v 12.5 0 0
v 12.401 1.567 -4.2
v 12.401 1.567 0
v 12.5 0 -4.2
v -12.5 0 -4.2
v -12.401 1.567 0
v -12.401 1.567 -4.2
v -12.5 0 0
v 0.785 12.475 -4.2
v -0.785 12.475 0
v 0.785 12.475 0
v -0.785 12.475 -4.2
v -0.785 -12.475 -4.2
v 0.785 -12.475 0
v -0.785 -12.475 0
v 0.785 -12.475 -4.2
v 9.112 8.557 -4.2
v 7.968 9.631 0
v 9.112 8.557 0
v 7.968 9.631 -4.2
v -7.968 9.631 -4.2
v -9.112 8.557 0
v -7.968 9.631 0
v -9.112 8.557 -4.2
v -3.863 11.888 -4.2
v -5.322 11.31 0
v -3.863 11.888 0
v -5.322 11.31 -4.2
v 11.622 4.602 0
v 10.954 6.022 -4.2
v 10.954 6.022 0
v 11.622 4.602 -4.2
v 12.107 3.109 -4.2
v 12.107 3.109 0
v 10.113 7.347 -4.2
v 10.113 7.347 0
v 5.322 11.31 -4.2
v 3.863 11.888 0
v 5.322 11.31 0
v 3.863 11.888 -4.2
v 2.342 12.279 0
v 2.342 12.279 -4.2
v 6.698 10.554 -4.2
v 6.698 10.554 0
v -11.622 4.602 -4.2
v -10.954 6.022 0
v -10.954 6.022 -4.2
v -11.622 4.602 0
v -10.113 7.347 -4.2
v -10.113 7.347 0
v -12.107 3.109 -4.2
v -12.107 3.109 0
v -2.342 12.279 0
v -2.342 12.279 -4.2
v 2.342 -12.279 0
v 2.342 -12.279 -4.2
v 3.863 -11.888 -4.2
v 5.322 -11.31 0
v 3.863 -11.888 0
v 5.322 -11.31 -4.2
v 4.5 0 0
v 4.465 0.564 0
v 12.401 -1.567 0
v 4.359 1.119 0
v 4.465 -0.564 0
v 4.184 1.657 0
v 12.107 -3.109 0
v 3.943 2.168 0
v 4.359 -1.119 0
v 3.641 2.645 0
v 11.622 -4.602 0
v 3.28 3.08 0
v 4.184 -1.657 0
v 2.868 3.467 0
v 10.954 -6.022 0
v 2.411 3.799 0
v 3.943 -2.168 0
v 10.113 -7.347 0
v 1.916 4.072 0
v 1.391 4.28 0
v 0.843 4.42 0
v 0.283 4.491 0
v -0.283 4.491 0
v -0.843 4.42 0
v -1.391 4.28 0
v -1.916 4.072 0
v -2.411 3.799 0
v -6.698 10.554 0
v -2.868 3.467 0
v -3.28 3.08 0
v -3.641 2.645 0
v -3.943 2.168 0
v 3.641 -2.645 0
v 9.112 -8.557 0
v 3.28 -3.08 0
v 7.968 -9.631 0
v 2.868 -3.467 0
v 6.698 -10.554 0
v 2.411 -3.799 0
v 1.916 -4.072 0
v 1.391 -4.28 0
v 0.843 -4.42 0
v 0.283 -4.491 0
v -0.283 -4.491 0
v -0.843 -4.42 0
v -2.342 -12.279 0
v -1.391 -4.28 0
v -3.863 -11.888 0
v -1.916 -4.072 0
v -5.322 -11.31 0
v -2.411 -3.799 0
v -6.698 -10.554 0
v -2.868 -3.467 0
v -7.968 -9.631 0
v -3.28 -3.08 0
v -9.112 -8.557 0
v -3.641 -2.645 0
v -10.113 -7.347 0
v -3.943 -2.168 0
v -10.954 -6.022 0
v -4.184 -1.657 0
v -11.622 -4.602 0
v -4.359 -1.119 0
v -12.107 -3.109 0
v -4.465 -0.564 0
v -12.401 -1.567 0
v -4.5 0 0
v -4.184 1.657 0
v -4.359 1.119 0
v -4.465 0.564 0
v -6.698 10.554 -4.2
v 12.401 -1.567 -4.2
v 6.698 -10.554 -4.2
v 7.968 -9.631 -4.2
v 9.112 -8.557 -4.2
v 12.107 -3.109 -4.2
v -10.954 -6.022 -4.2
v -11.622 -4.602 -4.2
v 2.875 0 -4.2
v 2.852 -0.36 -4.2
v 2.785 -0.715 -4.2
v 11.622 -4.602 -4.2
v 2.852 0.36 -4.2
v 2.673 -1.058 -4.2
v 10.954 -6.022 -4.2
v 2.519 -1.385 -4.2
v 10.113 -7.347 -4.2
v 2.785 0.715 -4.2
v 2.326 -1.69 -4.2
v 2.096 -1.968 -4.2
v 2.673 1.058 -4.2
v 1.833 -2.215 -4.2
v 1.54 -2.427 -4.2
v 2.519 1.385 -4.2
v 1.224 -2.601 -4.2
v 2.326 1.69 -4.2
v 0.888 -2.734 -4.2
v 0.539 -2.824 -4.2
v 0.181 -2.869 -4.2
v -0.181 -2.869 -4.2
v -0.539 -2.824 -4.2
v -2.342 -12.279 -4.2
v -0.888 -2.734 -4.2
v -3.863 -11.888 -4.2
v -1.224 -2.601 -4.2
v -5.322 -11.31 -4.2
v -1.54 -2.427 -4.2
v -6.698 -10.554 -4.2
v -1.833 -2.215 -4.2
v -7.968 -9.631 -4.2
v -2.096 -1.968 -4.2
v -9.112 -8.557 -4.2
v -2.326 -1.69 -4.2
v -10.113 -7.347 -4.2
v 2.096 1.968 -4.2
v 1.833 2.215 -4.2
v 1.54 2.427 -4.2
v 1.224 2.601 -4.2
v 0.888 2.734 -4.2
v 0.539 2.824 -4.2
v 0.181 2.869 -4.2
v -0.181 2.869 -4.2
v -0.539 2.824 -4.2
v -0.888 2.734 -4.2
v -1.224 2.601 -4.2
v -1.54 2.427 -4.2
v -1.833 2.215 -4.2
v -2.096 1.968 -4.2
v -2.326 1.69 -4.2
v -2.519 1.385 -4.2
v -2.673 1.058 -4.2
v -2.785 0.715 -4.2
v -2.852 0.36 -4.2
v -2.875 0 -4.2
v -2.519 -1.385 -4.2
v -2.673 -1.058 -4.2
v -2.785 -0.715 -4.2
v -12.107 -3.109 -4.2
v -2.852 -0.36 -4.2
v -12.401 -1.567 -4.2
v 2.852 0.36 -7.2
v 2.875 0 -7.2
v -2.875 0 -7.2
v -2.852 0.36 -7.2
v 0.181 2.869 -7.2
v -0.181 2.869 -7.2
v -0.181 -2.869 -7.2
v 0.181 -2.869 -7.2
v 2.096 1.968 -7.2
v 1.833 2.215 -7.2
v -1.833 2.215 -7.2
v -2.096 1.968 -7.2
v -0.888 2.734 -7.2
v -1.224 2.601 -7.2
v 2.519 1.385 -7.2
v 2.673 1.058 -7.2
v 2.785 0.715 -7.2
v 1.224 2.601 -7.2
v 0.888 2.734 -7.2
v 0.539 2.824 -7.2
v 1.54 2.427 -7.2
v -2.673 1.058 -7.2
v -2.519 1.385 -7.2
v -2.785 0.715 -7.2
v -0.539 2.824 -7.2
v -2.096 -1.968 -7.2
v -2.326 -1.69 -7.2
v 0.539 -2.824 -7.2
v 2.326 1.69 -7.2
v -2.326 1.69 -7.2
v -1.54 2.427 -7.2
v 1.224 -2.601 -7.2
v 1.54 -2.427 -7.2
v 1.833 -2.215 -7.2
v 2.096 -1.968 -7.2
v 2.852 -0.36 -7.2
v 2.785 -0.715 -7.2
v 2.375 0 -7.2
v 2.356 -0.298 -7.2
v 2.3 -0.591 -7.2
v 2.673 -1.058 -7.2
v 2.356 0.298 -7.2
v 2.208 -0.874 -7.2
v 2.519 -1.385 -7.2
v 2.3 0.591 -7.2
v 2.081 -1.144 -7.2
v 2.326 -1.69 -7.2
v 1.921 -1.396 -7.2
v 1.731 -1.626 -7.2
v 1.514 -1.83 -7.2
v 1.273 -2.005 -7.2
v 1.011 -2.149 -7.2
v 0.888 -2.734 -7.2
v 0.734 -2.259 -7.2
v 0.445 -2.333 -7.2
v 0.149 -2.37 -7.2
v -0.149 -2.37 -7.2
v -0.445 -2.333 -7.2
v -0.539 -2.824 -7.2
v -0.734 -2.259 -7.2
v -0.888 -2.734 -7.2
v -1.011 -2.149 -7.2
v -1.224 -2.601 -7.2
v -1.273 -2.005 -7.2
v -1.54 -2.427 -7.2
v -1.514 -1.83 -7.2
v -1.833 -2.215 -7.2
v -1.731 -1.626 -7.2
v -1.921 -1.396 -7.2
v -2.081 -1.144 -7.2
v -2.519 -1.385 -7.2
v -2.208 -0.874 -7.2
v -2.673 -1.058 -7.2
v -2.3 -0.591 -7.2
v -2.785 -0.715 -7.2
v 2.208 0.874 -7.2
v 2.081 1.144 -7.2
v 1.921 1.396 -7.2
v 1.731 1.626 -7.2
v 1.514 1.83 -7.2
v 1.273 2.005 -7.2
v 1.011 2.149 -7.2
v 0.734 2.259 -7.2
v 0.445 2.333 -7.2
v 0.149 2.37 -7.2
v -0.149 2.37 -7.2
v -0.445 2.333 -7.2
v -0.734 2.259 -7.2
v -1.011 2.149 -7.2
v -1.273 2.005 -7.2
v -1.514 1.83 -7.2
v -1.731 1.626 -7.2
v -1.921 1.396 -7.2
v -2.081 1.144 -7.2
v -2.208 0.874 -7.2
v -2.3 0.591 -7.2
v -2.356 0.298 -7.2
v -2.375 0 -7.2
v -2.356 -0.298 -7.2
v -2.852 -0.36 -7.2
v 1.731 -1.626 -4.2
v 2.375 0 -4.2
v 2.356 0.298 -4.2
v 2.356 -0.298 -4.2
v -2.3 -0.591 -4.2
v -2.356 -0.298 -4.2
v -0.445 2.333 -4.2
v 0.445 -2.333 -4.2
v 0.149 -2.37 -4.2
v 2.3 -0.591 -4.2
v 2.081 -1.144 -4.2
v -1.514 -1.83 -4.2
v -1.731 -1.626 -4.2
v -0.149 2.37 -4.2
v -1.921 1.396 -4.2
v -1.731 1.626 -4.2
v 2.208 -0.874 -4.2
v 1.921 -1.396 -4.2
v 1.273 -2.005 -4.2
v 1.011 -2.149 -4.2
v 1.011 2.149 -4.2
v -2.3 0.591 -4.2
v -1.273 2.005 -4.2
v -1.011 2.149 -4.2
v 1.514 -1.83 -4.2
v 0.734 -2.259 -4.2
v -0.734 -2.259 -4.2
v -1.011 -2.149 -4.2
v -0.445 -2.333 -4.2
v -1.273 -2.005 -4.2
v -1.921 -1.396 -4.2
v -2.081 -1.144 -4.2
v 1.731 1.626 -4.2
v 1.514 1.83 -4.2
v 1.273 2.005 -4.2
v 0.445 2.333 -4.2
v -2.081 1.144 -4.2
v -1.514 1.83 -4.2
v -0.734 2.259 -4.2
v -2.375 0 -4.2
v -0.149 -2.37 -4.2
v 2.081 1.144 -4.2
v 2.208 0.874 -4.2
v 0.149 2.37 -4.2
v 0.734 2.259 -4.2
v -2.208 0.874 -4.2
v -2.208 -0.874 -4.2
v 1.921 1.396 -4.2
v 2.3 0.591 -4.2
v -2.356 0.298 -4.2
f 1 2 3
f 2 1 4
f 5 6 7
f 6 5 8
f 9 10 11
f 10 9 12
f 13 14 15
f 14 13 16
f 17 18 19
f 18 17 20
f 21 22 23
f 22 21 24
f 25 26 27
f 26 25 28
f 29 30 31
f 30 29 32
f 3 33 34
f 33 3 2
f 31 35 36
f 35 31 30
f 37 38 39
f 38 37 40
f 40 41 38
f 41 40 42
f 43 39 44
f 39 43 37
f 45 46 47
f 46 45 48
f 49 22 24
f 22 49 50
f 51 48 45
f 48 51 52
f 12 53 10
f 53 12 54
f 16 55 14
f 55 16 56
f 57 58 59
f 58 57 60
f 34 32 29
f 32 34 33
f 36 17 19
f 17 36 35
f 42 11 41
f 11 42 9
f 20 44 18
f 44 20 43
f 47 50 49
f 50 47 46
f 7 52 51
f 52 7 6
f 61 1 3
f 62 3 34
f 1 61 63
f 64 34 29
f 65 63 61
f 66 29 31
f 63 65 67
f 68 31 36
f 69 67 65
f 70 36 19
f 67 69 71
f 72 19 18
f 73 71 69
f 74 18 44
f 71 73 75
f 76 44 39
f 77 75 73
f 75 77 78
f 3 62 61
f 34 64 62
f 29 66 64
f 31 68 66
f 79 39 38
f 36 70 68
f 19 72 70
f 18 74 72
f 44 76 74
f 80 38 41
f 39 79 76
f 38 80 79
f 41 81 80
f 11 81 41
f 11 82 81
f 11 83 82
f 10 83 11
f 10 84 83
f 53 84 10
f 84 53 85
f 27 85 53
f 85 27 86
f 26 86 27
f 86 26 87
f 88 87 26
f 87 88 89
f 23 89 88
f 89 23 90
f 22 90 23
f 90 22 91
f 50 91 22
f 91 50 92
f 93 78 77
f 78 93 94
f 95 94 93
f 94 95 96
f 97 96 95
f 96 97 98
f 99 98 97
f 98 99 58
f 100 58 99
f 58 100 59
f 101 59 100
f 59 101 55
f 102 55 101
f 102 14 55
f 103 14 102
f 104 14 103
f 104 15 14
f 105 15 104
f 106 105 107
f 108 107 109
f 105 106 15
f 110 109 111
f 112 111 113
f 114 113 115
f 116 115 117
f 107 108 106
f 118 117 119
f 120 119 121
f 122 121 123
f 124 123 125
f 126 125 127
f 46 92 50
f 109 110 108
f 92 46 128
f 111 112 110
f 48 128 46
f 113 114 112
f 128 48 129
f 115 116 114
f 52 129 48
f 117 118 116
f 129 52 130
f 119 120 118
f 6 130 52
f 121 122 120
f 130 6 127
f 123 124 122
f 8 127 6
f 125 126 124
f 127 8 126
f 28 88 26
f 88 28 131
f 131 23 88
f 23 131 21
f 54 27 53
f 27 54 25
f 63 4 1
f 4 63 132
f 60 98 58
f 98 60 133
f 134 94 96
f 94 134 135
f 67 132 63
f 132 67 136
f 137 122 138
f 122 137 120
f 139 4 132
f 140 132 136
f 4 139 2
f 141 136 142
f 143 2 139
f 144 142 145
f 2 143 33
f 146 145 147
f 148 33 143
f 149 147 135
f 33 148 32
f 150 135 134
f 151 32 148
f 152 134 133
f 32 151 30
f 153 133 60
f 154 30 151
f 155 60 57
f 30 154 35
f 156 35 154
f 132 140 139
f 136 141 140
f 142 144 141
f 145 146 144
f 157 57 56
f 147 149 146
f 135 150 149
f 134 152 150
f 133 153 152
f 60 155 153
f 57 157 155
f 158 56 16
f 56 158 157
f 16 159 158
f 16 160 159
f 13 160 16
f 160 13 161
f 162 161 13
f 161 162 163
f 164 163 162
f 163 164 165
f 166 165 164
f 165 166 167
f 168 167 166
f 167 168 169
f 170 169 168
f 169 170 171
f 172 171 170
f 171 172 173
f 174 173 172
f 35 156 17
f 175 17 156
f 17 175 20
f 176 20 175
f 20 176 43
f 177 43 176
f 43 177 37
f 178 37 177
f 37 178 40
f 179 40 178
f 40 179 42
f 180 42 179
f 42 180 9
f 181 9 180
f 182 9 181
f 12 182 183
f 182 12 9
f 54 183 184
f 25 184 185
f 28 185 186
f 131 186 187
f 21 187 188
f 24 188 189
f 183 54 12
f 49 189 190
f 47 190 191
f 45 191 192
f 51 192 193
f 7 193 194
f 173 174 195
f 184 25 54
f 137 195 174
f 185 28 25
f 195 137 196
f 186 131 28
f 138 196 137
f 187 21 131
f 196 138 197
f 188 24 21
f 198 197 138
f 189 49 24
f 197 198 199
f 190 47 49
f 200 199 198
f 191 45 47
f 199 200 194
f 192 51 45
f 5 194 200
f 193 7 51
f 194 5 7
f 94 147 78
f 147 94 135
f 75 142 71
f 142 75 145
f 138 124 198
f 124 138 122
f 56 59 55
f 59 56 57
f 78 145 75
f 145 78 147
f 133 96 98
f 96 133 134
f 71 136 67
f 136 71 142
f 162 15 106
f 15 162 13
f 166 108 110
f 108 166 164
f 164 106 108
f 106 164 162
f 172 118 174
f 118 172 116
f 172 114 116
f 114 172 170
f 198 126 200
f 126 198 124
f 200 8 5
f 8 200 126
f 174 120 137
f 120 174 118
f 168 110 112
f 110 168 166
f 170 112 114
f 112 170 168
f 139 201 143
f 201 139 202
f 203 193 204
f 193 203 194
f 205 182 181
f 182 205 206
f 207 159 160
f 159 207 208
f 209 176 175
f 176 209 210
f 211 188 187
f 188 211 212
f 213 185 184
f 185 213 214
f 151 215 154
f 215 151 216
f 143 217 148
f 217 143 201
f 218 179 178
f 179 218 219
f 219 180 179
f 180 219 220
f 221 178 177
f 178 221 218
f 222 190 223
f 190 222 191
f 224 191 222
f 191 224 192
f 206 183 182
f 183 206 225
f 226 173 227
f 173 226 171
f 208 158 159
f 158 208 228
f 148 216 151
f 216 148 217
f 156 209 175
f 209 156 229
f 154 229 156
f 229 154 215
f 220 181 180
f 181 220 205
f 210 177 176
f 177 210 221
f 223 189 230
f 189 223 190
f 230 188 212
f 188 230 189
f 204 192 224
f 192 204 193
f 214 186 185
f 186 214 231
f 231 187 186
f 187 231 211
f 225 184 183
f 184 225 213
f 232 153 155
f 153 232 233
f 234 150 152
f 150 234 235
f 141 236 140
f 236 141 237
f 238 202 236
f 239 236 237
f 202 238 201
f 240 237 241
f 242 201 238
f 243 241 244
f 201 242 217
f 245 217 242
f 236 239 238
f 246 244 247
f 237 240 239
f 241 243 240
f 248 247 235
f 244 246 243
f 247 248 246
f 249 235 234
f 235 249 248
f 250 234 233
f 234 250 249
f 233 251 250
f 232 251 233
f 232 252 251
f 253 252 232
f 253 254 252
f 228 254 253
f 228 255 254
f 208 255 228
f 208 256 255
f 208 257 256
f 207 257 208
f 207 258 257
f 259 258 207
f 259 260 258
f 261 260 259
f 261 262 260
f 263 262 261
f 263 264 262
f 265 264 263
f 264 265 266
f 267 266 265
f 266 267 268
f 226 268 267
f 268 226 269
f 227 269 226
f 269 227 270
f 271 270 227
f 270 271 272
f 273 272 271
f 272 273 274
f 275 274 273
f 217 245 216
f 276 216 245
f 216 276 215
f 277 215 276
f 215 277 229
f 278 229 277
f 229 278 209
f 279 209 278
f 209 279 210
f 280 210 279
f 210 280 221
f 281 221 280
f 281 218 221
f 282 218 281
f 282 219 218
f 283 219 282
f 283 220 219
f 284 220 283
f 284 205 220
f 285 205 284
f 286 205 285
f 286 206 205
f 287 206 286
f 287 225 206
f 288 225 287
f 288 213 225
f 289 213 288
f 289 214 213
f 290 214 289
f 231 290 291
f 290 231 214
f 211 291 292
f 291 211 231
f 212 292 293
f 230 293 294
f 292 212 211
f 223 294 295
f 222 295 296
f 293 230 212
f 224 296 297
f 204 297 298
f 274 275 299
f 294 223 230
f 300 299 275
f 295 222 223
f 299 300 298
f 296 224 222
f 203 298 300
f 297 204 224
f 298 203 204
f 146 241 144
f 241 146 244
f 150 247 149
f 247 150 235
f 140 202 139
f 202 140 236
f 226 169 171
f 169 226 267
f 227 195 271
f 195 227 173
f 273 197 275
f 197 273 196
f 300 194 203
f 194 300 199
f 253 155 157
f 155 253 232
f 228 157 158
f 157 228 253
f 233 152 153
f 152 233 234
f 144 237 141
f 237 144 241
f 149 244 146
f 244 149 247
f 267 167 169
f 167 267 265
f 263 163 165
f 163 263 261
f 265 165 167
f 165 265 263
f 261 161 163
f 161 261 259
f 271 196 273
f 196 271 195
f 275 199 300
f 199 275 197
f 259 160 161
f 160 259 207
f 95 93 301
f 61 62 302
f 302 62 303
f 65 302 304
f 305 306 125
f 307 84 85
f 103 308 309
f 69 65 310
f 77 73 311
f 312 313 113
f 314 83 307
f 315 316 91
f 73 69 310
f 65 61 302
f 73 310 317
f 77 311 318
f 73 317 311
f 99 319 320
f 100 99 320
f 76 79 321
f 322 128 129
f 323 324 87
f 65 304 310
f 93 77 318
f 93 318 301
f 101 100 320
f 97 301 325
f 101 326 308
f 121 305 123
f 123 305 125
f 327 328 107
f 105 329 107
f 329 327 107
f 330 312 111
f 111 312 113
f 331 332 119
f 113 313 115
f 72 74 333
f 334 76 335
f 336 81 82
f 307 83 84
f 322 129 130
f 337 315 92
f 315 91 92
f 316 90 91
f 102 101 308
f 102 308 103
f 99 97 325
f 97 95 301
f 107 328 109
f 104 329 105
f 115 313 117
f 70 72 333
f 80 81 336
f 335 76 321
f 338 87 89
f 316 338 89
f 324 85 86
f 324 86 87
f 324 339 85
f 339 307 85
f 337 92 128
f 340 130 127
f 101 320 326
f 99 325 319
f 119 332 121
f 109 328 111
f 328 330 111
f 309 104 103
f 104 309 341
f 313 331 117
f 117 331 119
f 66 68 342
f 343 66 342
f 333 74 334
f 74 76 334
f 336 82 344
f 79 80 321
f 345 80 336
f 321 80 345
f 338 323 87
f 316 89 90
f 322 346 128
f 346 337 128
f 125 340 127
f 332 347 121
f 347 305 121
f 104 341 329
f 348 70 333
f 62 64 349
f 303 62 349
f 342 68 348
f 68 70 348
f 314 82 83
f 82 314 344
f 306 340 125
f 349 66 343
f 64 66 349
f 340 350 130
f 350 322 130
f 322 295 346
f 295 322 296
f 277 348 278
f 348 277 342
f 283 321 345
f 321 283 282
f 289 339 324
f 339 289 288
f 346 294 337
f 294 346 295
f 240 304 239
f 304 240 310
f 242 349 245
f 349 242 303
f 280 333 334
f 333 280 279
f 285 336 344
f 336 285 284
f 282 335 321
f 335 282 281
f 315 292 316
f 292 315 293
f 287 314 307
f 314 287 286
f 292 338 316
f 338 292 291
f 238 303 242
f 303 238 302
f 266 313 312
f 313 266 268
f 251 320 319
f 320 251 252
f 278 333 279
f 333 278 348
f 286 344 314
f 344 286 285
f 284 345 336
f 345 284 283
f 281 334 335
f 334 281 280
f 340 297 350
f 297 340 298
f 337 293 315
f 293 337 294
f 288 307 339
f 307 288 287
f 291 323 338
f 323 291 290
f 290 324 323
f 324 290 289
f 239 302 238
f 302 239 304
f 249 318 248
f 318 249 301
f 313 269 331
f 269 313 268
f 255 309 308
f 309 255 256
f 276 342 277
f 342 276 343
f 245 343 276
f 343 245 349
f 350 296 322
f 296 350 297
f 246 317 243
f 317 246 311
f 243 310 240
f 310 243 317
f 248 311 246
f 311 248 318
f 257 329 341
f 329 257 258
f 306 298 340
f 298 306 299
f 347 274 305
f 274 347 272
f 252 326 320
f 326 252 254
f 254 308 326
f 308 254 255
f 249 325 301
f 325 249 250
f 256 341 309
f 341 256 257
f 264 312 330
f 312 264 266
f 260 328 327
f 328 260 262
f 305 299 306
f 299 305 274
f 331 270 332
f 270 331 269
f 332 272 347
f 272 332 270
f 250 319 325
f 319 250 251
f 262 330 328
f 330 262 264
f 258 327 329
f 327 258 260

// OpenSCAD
$fn = 50;


difference() {
	union() {
		translate(v = [0, 0, -4.2000000000]) {
			cylinder(h = 4.2000000000, r = 12.5000000000);
		}
		#translate(v = [0, 0, -7.2000000000]) {
			cylinder(h = 7.2000000000, r = 2.8750000000);
		}
	}
	union() {
		translate(v = [0, 0, 0]) {
			rotate(a = [0, 0, 0]) {
				difference() {
					union() {
						translate(v = [0, 0, -7.2000000000]) {
							cylinder(h = 7.2000000000, r = 2.2500000000);
						}
						translate(v = [0, 0, -4.2000000000]) {
							cylinder(h = 4.2000000000, r1 = 2.3750000000, r2 = 4.5000000000);
						}
						translate(v = [0, 0, -7.2000000000]) {
							cylinder(h = 7.2000000000, r = 2.3750000000);
						}
						translate(v = [0, 0, -7.2000000000]) {
							cylinder(h = 7.2000000000, r = 2.2500000000);
						}
					}
					union();
				}
			}
		}
	}
}
